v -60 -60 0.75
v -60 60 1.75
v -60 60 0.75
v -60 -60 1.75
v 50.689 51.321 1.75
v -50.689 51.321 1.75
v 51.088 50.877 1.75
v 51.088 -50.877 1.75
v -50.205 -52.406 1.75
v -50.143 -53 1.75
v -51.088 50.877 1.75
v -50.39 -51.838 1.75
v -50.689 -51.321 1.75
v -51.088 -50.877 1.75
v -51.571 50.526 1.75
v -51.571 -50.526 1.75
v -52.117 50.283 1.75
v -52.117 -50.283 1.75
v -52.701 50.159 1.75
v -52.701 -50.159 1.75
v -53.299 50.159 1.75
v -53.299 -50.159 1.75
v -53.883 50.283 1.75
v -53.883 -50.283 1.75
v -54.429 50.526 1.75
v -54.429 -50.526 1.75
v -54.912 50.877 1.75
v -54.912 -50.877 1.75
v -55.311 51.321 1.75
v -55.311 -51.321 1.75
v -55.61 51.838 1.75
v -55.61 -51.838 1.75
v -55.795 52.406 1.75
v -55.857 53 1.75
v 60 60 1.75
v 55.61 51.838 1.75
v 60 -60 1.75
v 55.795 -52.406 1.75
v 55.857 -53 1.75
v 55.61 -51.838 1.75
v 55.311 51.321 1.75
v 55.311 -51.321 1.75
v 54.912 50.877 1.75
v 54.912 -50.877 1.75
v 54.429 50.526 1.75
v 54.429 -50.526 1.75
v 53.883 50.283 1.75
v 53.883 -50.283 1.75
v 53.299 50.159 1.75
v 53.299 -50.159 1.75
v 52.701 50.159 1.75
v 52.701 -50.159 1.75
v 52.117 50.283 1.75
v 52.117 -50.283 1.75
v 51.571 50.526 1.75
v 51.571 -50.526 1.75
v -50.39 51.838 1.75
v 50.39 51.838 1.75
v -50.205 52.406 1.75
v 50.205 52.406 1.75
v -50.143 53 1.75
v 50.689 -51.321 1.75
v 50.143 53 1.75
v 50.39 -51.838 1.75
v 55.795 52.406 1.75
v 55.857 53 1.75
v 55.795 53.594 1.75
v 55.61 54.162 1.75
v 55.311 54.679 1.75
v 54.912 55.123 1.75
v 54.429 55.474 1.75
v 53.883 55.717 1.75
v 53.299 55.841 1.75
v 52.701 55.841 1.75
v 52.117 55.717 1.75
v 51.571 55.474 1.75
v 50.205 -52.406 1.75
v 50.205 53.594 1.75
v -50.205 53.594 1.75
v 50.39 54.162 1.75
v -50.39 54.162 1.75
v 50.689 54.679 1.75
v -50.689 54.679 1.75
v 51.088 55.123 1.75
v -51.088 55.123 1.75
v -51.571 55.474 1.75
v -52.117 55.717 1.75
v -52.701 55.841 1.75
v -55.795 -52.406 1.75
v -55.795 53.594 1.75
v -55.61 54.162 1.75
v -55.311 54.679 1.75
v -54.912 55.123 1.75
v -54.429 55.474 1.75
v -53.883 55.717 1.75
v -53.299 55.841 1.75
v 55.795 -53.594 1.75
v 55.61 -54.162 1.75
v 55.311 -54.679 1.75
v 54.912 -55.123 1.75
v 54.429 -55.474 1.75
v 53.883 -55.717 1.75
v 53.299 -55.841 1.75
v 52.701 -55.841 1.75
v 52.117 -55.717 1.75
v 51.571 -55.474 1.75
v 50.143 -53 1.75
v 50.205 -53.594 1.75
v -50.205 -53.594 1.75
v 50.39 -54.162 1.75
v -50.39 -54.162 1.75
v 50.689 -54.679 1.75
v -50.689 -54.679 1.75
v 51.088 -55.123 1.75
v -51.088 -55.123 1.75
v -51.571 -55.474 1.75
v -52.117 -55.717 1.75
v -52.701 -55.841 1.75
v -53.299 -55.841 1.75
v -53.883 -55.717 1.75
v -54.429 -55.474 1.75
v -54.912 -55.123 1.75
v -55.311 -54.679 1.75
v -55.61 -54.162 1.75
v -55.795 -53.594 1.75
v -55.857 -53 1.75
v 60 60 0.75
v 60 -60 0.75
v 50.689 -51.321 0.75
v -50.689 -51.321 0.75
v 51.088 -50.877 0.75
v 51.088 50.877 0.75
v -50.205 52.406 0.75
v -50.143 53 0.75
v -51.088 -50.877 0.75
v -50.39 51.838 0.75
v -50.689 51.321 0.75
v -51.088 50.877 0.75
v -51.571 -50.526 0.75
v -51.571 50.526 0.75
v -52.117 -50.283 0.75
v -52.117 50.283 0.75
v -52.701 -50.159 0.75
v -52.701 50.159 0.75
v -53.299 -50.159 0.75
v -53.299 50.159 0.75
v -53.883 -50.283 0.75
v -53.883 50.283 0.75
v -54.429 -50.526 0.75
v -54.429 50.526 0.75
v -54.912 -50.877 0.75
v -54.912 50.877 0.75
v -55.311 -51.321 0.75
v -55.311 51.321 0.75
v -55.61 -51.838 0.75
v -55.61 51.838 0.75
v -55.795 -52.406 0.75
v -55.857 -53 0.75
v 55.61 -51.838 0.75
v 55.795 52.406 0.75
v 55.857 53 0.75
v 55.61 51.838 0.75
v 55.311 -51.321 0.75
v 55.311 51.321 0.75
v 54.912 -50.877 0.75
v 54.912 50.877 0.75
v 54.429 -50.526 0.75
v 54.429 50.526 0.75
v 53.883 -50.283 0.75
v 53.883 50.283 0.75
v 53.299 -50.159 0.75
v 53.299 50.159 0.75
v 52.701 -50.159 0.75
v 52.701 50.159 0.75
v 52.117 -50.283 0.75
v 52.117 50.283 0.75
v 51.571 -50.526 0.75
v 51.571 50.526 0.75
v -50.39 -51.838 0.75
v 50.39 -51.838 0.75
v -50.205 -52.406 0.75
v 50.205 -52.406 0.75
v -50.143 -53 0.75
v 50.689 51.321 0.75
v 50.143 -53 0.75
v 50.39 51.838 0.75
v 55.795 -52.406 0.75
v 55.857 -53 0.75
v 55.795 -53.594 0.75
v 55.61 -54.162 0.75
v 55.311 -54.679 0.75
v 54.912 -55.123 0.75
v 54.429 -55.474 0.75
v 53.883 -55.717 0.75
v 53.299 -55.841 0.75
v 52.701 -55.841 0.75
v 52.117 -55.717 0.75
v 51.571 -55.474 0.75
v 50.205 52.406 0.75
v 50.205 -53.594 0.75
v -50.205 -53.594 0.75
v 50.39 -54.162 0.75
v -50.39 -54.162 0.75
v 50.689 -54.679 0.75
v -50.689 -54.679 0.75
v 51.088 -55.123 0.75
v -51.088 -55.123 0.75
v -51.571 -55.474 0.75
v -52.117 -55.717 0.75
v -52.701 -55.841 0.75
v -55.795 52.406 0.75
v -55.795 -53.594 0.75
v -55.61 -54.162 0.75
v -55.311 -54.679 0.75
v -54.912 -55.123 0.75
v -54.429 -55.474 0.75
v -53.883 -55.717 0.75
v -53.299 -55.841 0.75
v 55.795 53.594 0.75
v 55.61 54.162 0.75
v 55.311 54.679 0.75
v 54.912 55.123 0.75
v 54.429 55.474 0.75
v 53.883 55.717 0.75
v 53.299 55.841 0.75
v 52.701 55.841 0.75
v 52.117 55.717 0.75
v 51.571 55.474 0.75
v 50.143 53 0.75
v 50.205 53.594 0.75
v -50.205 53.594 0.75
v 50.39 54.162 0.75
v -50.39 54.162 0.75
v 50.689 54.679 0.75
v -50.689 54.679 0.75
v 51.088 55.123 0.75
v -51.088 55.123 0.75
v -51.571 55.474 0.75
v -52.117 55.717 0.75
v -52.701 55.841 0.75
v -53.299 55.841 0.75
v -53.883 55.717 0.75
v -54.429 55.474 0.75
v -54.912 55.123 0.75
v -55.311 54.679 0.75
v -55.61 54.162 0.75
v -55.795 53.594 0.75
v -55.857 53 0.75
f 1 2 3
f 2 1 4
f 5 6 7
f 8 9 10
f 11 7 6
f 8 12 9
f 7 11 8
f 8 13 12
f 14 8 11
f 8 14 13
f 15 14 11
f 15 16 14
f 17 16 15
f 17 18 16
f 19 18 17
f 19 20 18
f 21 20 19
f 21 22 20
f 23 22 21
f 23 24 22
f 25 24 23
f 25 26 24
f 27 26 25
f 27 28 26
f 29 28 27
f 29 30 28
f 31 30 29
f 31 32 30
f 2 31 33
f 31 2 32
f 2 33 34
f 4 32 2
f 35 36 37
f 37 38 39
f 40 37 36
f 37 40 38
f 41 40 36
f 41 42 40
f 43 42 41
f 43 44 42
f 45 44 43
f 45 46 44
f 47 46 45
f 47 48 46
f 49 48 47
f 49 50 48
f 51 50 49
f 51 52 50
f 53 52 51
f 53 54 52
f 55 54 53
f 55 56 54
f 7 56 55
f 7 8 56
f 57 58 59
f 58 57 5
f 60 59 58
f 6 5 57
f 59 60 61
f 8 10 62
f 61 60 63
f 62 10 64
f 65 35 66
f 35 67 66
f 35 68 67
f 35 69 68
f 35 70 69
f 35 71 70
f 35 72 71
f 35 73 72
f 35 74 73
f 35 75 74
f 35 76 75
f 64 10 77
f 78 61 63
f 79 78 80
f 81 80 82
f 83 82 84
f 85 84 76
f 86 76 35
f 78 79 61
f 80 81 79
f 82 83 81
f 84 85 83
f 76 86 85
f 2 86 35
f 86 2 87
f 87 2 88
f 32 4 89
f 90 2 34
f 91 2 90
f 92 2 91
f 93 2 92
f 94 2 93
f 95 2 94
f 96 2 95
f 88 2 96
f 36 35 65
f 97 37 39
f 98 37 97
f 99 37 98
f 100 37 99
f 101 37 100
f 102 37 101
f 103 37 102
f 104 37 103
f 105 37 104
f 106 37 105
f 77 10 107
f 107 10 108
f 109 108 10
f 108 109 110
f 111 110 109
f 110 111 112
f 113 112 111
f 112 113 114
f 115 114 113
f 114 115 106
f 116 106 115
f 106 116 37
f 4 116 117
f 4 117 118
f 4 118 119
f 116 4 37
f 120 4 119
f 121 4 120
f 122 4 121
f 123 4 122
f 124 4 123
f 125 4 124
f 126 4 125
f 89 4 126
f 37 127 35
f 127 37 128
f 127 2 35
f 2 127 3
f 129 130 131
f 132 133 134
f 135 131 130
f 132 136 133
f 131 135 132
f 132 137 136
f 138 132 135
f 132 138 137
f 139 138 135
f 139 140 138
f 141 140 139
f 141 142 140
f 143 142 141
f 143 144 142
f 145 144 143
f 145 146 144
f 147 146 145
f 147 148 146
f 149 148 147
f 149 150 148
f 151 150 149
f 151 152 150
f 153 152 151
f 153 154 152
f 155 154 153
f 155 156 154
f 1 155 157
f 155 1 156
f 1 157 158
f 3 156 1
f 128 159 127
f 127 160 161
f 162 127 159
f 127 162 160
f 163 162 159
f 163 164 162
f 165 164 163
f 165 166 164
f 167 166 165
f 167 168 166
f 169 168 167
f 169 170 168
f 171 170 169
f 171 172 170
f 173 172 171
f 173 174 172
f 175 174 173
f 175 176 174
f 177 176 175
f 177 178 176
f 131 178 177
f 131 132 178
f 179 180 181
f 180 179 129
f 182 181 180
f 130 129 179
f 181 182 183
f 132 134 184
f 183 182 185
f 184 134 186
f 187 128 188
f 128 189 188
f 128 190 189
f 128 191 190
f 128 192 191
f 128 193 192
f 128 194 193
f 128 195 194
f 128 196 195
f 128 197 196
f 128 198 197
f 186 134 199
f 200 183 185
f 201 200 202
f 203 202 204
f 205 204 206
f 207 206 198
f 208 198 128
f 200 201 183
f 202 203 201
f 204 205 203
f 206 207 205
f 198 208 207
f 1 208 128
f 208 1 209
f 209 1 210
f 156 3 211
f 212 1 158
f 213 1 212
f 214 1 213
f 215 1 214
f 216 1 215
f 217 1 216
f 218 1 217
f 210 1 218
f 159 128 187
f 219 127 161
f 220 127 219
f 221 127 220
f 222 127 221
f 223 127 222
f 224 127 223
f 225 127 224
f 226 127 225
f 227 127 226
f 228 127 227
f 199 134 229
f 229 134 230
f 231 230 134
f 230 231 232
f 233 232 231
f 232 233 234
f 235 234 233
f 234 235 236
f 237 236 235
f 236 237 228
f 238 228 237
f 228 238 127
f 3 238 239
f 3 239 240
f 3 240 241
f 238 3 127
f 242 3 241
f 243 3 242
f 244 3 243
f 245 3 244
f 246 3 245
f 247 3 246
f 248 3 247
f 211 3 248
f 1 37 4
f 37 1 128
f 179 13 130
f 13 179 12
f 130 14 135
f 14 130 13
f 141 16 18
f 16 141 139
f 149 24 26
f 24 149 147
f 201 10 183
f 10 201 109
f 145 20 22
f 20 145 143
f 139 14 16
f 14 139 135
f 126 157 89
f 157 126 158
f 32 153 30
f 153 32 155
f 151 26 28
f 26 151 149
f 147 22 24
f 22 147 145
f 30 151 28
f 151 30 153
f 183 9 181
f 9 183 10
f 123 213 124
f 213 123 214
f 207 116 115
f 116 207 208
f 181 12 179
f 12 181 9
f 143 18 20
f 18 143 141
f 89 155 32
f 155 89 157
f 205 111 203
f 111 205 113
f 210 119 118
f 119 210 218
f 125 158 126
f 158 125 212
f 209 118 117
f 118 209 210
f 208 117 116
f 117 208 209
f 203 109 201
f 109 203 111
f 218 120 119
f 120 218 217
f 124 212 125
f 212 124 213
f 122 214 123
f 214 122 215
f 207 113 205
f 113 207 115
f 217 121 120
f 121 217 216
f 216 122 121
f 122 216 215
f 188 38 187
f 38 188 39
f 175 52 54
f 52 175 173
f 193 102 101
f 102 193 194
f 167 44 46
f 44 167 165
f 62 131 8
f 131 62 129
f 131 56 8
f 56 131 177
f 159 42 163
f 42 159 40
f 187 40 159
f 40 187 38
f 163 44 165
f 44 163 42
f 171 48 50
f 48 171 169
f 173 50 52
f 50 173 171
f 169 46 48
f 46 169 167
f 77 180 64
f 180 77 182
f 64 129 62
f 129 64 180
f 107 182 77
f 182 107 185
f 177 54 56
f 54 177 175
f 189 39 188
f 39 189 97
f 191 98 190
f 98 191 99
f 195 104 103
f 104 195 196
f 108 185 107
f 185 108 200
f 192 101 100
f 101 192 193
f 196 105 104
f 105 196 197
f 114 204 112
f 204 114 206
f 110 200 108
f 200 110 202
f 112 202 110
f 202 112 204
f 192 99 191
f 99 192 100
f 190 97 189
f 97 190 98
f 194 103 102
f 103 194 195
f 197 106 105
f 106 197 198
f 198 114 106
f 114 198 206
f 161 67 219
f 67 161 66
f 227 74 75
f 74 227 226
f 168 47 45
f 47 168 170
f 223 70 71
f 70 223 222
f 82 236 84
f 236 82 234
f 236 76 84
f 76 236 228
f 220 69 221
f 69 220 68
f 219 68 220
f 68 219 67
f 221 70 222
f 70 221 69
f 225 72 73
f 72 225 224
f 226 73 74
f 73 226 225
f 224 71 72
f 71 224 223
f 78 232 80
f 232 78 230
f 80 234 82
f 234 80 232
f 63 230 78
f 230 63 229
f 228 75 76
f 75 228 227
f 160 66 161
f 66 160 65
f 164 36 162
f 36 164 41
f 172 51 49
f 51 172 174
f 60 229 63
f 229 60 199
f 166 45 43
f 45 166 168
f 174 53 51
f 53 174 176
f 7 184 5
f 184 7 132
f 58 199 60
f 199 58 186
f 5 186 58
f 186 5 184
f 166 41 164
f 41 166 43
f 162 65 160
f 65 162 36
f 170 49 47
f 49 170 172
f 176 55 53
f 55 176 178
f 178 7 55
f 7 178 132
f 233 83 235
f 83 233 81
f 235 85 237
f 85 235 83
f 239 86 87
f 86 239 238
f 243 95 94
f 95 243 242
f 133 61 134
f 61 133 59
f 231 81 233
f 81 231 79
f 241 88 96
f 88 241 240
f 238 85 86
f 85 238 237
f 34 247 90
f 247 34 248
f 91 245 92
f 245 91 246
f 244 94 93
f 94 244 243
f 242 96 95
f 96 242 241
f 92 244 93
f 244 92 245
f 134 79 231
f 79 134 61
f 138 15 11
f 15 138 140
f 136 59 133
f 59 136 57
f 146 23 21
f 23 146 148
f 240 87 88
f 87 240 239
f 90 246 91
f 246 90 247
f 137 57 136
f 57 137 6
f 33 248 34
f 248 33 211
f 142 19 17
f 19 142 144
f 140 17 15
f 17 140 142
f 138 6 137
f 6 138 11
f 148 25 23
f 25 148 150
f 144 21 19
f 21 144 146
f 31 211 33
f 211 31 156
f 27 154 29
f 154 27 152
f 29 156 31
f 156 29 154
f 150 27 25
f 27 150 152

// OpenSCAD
scale(1/14)
difference(){
translate([0,0,17.5])cube([1680,1680,14],center=true);
translate([-742,-742,-1])cylinder(d=80,h=40);
translate([742,-742,-1])cylinder(d=80,h=40);
translate([742,742,-1])cylinder(d=80,h=40);
translate([-742,742,-1])cylinder(d=80,h=40);
}
